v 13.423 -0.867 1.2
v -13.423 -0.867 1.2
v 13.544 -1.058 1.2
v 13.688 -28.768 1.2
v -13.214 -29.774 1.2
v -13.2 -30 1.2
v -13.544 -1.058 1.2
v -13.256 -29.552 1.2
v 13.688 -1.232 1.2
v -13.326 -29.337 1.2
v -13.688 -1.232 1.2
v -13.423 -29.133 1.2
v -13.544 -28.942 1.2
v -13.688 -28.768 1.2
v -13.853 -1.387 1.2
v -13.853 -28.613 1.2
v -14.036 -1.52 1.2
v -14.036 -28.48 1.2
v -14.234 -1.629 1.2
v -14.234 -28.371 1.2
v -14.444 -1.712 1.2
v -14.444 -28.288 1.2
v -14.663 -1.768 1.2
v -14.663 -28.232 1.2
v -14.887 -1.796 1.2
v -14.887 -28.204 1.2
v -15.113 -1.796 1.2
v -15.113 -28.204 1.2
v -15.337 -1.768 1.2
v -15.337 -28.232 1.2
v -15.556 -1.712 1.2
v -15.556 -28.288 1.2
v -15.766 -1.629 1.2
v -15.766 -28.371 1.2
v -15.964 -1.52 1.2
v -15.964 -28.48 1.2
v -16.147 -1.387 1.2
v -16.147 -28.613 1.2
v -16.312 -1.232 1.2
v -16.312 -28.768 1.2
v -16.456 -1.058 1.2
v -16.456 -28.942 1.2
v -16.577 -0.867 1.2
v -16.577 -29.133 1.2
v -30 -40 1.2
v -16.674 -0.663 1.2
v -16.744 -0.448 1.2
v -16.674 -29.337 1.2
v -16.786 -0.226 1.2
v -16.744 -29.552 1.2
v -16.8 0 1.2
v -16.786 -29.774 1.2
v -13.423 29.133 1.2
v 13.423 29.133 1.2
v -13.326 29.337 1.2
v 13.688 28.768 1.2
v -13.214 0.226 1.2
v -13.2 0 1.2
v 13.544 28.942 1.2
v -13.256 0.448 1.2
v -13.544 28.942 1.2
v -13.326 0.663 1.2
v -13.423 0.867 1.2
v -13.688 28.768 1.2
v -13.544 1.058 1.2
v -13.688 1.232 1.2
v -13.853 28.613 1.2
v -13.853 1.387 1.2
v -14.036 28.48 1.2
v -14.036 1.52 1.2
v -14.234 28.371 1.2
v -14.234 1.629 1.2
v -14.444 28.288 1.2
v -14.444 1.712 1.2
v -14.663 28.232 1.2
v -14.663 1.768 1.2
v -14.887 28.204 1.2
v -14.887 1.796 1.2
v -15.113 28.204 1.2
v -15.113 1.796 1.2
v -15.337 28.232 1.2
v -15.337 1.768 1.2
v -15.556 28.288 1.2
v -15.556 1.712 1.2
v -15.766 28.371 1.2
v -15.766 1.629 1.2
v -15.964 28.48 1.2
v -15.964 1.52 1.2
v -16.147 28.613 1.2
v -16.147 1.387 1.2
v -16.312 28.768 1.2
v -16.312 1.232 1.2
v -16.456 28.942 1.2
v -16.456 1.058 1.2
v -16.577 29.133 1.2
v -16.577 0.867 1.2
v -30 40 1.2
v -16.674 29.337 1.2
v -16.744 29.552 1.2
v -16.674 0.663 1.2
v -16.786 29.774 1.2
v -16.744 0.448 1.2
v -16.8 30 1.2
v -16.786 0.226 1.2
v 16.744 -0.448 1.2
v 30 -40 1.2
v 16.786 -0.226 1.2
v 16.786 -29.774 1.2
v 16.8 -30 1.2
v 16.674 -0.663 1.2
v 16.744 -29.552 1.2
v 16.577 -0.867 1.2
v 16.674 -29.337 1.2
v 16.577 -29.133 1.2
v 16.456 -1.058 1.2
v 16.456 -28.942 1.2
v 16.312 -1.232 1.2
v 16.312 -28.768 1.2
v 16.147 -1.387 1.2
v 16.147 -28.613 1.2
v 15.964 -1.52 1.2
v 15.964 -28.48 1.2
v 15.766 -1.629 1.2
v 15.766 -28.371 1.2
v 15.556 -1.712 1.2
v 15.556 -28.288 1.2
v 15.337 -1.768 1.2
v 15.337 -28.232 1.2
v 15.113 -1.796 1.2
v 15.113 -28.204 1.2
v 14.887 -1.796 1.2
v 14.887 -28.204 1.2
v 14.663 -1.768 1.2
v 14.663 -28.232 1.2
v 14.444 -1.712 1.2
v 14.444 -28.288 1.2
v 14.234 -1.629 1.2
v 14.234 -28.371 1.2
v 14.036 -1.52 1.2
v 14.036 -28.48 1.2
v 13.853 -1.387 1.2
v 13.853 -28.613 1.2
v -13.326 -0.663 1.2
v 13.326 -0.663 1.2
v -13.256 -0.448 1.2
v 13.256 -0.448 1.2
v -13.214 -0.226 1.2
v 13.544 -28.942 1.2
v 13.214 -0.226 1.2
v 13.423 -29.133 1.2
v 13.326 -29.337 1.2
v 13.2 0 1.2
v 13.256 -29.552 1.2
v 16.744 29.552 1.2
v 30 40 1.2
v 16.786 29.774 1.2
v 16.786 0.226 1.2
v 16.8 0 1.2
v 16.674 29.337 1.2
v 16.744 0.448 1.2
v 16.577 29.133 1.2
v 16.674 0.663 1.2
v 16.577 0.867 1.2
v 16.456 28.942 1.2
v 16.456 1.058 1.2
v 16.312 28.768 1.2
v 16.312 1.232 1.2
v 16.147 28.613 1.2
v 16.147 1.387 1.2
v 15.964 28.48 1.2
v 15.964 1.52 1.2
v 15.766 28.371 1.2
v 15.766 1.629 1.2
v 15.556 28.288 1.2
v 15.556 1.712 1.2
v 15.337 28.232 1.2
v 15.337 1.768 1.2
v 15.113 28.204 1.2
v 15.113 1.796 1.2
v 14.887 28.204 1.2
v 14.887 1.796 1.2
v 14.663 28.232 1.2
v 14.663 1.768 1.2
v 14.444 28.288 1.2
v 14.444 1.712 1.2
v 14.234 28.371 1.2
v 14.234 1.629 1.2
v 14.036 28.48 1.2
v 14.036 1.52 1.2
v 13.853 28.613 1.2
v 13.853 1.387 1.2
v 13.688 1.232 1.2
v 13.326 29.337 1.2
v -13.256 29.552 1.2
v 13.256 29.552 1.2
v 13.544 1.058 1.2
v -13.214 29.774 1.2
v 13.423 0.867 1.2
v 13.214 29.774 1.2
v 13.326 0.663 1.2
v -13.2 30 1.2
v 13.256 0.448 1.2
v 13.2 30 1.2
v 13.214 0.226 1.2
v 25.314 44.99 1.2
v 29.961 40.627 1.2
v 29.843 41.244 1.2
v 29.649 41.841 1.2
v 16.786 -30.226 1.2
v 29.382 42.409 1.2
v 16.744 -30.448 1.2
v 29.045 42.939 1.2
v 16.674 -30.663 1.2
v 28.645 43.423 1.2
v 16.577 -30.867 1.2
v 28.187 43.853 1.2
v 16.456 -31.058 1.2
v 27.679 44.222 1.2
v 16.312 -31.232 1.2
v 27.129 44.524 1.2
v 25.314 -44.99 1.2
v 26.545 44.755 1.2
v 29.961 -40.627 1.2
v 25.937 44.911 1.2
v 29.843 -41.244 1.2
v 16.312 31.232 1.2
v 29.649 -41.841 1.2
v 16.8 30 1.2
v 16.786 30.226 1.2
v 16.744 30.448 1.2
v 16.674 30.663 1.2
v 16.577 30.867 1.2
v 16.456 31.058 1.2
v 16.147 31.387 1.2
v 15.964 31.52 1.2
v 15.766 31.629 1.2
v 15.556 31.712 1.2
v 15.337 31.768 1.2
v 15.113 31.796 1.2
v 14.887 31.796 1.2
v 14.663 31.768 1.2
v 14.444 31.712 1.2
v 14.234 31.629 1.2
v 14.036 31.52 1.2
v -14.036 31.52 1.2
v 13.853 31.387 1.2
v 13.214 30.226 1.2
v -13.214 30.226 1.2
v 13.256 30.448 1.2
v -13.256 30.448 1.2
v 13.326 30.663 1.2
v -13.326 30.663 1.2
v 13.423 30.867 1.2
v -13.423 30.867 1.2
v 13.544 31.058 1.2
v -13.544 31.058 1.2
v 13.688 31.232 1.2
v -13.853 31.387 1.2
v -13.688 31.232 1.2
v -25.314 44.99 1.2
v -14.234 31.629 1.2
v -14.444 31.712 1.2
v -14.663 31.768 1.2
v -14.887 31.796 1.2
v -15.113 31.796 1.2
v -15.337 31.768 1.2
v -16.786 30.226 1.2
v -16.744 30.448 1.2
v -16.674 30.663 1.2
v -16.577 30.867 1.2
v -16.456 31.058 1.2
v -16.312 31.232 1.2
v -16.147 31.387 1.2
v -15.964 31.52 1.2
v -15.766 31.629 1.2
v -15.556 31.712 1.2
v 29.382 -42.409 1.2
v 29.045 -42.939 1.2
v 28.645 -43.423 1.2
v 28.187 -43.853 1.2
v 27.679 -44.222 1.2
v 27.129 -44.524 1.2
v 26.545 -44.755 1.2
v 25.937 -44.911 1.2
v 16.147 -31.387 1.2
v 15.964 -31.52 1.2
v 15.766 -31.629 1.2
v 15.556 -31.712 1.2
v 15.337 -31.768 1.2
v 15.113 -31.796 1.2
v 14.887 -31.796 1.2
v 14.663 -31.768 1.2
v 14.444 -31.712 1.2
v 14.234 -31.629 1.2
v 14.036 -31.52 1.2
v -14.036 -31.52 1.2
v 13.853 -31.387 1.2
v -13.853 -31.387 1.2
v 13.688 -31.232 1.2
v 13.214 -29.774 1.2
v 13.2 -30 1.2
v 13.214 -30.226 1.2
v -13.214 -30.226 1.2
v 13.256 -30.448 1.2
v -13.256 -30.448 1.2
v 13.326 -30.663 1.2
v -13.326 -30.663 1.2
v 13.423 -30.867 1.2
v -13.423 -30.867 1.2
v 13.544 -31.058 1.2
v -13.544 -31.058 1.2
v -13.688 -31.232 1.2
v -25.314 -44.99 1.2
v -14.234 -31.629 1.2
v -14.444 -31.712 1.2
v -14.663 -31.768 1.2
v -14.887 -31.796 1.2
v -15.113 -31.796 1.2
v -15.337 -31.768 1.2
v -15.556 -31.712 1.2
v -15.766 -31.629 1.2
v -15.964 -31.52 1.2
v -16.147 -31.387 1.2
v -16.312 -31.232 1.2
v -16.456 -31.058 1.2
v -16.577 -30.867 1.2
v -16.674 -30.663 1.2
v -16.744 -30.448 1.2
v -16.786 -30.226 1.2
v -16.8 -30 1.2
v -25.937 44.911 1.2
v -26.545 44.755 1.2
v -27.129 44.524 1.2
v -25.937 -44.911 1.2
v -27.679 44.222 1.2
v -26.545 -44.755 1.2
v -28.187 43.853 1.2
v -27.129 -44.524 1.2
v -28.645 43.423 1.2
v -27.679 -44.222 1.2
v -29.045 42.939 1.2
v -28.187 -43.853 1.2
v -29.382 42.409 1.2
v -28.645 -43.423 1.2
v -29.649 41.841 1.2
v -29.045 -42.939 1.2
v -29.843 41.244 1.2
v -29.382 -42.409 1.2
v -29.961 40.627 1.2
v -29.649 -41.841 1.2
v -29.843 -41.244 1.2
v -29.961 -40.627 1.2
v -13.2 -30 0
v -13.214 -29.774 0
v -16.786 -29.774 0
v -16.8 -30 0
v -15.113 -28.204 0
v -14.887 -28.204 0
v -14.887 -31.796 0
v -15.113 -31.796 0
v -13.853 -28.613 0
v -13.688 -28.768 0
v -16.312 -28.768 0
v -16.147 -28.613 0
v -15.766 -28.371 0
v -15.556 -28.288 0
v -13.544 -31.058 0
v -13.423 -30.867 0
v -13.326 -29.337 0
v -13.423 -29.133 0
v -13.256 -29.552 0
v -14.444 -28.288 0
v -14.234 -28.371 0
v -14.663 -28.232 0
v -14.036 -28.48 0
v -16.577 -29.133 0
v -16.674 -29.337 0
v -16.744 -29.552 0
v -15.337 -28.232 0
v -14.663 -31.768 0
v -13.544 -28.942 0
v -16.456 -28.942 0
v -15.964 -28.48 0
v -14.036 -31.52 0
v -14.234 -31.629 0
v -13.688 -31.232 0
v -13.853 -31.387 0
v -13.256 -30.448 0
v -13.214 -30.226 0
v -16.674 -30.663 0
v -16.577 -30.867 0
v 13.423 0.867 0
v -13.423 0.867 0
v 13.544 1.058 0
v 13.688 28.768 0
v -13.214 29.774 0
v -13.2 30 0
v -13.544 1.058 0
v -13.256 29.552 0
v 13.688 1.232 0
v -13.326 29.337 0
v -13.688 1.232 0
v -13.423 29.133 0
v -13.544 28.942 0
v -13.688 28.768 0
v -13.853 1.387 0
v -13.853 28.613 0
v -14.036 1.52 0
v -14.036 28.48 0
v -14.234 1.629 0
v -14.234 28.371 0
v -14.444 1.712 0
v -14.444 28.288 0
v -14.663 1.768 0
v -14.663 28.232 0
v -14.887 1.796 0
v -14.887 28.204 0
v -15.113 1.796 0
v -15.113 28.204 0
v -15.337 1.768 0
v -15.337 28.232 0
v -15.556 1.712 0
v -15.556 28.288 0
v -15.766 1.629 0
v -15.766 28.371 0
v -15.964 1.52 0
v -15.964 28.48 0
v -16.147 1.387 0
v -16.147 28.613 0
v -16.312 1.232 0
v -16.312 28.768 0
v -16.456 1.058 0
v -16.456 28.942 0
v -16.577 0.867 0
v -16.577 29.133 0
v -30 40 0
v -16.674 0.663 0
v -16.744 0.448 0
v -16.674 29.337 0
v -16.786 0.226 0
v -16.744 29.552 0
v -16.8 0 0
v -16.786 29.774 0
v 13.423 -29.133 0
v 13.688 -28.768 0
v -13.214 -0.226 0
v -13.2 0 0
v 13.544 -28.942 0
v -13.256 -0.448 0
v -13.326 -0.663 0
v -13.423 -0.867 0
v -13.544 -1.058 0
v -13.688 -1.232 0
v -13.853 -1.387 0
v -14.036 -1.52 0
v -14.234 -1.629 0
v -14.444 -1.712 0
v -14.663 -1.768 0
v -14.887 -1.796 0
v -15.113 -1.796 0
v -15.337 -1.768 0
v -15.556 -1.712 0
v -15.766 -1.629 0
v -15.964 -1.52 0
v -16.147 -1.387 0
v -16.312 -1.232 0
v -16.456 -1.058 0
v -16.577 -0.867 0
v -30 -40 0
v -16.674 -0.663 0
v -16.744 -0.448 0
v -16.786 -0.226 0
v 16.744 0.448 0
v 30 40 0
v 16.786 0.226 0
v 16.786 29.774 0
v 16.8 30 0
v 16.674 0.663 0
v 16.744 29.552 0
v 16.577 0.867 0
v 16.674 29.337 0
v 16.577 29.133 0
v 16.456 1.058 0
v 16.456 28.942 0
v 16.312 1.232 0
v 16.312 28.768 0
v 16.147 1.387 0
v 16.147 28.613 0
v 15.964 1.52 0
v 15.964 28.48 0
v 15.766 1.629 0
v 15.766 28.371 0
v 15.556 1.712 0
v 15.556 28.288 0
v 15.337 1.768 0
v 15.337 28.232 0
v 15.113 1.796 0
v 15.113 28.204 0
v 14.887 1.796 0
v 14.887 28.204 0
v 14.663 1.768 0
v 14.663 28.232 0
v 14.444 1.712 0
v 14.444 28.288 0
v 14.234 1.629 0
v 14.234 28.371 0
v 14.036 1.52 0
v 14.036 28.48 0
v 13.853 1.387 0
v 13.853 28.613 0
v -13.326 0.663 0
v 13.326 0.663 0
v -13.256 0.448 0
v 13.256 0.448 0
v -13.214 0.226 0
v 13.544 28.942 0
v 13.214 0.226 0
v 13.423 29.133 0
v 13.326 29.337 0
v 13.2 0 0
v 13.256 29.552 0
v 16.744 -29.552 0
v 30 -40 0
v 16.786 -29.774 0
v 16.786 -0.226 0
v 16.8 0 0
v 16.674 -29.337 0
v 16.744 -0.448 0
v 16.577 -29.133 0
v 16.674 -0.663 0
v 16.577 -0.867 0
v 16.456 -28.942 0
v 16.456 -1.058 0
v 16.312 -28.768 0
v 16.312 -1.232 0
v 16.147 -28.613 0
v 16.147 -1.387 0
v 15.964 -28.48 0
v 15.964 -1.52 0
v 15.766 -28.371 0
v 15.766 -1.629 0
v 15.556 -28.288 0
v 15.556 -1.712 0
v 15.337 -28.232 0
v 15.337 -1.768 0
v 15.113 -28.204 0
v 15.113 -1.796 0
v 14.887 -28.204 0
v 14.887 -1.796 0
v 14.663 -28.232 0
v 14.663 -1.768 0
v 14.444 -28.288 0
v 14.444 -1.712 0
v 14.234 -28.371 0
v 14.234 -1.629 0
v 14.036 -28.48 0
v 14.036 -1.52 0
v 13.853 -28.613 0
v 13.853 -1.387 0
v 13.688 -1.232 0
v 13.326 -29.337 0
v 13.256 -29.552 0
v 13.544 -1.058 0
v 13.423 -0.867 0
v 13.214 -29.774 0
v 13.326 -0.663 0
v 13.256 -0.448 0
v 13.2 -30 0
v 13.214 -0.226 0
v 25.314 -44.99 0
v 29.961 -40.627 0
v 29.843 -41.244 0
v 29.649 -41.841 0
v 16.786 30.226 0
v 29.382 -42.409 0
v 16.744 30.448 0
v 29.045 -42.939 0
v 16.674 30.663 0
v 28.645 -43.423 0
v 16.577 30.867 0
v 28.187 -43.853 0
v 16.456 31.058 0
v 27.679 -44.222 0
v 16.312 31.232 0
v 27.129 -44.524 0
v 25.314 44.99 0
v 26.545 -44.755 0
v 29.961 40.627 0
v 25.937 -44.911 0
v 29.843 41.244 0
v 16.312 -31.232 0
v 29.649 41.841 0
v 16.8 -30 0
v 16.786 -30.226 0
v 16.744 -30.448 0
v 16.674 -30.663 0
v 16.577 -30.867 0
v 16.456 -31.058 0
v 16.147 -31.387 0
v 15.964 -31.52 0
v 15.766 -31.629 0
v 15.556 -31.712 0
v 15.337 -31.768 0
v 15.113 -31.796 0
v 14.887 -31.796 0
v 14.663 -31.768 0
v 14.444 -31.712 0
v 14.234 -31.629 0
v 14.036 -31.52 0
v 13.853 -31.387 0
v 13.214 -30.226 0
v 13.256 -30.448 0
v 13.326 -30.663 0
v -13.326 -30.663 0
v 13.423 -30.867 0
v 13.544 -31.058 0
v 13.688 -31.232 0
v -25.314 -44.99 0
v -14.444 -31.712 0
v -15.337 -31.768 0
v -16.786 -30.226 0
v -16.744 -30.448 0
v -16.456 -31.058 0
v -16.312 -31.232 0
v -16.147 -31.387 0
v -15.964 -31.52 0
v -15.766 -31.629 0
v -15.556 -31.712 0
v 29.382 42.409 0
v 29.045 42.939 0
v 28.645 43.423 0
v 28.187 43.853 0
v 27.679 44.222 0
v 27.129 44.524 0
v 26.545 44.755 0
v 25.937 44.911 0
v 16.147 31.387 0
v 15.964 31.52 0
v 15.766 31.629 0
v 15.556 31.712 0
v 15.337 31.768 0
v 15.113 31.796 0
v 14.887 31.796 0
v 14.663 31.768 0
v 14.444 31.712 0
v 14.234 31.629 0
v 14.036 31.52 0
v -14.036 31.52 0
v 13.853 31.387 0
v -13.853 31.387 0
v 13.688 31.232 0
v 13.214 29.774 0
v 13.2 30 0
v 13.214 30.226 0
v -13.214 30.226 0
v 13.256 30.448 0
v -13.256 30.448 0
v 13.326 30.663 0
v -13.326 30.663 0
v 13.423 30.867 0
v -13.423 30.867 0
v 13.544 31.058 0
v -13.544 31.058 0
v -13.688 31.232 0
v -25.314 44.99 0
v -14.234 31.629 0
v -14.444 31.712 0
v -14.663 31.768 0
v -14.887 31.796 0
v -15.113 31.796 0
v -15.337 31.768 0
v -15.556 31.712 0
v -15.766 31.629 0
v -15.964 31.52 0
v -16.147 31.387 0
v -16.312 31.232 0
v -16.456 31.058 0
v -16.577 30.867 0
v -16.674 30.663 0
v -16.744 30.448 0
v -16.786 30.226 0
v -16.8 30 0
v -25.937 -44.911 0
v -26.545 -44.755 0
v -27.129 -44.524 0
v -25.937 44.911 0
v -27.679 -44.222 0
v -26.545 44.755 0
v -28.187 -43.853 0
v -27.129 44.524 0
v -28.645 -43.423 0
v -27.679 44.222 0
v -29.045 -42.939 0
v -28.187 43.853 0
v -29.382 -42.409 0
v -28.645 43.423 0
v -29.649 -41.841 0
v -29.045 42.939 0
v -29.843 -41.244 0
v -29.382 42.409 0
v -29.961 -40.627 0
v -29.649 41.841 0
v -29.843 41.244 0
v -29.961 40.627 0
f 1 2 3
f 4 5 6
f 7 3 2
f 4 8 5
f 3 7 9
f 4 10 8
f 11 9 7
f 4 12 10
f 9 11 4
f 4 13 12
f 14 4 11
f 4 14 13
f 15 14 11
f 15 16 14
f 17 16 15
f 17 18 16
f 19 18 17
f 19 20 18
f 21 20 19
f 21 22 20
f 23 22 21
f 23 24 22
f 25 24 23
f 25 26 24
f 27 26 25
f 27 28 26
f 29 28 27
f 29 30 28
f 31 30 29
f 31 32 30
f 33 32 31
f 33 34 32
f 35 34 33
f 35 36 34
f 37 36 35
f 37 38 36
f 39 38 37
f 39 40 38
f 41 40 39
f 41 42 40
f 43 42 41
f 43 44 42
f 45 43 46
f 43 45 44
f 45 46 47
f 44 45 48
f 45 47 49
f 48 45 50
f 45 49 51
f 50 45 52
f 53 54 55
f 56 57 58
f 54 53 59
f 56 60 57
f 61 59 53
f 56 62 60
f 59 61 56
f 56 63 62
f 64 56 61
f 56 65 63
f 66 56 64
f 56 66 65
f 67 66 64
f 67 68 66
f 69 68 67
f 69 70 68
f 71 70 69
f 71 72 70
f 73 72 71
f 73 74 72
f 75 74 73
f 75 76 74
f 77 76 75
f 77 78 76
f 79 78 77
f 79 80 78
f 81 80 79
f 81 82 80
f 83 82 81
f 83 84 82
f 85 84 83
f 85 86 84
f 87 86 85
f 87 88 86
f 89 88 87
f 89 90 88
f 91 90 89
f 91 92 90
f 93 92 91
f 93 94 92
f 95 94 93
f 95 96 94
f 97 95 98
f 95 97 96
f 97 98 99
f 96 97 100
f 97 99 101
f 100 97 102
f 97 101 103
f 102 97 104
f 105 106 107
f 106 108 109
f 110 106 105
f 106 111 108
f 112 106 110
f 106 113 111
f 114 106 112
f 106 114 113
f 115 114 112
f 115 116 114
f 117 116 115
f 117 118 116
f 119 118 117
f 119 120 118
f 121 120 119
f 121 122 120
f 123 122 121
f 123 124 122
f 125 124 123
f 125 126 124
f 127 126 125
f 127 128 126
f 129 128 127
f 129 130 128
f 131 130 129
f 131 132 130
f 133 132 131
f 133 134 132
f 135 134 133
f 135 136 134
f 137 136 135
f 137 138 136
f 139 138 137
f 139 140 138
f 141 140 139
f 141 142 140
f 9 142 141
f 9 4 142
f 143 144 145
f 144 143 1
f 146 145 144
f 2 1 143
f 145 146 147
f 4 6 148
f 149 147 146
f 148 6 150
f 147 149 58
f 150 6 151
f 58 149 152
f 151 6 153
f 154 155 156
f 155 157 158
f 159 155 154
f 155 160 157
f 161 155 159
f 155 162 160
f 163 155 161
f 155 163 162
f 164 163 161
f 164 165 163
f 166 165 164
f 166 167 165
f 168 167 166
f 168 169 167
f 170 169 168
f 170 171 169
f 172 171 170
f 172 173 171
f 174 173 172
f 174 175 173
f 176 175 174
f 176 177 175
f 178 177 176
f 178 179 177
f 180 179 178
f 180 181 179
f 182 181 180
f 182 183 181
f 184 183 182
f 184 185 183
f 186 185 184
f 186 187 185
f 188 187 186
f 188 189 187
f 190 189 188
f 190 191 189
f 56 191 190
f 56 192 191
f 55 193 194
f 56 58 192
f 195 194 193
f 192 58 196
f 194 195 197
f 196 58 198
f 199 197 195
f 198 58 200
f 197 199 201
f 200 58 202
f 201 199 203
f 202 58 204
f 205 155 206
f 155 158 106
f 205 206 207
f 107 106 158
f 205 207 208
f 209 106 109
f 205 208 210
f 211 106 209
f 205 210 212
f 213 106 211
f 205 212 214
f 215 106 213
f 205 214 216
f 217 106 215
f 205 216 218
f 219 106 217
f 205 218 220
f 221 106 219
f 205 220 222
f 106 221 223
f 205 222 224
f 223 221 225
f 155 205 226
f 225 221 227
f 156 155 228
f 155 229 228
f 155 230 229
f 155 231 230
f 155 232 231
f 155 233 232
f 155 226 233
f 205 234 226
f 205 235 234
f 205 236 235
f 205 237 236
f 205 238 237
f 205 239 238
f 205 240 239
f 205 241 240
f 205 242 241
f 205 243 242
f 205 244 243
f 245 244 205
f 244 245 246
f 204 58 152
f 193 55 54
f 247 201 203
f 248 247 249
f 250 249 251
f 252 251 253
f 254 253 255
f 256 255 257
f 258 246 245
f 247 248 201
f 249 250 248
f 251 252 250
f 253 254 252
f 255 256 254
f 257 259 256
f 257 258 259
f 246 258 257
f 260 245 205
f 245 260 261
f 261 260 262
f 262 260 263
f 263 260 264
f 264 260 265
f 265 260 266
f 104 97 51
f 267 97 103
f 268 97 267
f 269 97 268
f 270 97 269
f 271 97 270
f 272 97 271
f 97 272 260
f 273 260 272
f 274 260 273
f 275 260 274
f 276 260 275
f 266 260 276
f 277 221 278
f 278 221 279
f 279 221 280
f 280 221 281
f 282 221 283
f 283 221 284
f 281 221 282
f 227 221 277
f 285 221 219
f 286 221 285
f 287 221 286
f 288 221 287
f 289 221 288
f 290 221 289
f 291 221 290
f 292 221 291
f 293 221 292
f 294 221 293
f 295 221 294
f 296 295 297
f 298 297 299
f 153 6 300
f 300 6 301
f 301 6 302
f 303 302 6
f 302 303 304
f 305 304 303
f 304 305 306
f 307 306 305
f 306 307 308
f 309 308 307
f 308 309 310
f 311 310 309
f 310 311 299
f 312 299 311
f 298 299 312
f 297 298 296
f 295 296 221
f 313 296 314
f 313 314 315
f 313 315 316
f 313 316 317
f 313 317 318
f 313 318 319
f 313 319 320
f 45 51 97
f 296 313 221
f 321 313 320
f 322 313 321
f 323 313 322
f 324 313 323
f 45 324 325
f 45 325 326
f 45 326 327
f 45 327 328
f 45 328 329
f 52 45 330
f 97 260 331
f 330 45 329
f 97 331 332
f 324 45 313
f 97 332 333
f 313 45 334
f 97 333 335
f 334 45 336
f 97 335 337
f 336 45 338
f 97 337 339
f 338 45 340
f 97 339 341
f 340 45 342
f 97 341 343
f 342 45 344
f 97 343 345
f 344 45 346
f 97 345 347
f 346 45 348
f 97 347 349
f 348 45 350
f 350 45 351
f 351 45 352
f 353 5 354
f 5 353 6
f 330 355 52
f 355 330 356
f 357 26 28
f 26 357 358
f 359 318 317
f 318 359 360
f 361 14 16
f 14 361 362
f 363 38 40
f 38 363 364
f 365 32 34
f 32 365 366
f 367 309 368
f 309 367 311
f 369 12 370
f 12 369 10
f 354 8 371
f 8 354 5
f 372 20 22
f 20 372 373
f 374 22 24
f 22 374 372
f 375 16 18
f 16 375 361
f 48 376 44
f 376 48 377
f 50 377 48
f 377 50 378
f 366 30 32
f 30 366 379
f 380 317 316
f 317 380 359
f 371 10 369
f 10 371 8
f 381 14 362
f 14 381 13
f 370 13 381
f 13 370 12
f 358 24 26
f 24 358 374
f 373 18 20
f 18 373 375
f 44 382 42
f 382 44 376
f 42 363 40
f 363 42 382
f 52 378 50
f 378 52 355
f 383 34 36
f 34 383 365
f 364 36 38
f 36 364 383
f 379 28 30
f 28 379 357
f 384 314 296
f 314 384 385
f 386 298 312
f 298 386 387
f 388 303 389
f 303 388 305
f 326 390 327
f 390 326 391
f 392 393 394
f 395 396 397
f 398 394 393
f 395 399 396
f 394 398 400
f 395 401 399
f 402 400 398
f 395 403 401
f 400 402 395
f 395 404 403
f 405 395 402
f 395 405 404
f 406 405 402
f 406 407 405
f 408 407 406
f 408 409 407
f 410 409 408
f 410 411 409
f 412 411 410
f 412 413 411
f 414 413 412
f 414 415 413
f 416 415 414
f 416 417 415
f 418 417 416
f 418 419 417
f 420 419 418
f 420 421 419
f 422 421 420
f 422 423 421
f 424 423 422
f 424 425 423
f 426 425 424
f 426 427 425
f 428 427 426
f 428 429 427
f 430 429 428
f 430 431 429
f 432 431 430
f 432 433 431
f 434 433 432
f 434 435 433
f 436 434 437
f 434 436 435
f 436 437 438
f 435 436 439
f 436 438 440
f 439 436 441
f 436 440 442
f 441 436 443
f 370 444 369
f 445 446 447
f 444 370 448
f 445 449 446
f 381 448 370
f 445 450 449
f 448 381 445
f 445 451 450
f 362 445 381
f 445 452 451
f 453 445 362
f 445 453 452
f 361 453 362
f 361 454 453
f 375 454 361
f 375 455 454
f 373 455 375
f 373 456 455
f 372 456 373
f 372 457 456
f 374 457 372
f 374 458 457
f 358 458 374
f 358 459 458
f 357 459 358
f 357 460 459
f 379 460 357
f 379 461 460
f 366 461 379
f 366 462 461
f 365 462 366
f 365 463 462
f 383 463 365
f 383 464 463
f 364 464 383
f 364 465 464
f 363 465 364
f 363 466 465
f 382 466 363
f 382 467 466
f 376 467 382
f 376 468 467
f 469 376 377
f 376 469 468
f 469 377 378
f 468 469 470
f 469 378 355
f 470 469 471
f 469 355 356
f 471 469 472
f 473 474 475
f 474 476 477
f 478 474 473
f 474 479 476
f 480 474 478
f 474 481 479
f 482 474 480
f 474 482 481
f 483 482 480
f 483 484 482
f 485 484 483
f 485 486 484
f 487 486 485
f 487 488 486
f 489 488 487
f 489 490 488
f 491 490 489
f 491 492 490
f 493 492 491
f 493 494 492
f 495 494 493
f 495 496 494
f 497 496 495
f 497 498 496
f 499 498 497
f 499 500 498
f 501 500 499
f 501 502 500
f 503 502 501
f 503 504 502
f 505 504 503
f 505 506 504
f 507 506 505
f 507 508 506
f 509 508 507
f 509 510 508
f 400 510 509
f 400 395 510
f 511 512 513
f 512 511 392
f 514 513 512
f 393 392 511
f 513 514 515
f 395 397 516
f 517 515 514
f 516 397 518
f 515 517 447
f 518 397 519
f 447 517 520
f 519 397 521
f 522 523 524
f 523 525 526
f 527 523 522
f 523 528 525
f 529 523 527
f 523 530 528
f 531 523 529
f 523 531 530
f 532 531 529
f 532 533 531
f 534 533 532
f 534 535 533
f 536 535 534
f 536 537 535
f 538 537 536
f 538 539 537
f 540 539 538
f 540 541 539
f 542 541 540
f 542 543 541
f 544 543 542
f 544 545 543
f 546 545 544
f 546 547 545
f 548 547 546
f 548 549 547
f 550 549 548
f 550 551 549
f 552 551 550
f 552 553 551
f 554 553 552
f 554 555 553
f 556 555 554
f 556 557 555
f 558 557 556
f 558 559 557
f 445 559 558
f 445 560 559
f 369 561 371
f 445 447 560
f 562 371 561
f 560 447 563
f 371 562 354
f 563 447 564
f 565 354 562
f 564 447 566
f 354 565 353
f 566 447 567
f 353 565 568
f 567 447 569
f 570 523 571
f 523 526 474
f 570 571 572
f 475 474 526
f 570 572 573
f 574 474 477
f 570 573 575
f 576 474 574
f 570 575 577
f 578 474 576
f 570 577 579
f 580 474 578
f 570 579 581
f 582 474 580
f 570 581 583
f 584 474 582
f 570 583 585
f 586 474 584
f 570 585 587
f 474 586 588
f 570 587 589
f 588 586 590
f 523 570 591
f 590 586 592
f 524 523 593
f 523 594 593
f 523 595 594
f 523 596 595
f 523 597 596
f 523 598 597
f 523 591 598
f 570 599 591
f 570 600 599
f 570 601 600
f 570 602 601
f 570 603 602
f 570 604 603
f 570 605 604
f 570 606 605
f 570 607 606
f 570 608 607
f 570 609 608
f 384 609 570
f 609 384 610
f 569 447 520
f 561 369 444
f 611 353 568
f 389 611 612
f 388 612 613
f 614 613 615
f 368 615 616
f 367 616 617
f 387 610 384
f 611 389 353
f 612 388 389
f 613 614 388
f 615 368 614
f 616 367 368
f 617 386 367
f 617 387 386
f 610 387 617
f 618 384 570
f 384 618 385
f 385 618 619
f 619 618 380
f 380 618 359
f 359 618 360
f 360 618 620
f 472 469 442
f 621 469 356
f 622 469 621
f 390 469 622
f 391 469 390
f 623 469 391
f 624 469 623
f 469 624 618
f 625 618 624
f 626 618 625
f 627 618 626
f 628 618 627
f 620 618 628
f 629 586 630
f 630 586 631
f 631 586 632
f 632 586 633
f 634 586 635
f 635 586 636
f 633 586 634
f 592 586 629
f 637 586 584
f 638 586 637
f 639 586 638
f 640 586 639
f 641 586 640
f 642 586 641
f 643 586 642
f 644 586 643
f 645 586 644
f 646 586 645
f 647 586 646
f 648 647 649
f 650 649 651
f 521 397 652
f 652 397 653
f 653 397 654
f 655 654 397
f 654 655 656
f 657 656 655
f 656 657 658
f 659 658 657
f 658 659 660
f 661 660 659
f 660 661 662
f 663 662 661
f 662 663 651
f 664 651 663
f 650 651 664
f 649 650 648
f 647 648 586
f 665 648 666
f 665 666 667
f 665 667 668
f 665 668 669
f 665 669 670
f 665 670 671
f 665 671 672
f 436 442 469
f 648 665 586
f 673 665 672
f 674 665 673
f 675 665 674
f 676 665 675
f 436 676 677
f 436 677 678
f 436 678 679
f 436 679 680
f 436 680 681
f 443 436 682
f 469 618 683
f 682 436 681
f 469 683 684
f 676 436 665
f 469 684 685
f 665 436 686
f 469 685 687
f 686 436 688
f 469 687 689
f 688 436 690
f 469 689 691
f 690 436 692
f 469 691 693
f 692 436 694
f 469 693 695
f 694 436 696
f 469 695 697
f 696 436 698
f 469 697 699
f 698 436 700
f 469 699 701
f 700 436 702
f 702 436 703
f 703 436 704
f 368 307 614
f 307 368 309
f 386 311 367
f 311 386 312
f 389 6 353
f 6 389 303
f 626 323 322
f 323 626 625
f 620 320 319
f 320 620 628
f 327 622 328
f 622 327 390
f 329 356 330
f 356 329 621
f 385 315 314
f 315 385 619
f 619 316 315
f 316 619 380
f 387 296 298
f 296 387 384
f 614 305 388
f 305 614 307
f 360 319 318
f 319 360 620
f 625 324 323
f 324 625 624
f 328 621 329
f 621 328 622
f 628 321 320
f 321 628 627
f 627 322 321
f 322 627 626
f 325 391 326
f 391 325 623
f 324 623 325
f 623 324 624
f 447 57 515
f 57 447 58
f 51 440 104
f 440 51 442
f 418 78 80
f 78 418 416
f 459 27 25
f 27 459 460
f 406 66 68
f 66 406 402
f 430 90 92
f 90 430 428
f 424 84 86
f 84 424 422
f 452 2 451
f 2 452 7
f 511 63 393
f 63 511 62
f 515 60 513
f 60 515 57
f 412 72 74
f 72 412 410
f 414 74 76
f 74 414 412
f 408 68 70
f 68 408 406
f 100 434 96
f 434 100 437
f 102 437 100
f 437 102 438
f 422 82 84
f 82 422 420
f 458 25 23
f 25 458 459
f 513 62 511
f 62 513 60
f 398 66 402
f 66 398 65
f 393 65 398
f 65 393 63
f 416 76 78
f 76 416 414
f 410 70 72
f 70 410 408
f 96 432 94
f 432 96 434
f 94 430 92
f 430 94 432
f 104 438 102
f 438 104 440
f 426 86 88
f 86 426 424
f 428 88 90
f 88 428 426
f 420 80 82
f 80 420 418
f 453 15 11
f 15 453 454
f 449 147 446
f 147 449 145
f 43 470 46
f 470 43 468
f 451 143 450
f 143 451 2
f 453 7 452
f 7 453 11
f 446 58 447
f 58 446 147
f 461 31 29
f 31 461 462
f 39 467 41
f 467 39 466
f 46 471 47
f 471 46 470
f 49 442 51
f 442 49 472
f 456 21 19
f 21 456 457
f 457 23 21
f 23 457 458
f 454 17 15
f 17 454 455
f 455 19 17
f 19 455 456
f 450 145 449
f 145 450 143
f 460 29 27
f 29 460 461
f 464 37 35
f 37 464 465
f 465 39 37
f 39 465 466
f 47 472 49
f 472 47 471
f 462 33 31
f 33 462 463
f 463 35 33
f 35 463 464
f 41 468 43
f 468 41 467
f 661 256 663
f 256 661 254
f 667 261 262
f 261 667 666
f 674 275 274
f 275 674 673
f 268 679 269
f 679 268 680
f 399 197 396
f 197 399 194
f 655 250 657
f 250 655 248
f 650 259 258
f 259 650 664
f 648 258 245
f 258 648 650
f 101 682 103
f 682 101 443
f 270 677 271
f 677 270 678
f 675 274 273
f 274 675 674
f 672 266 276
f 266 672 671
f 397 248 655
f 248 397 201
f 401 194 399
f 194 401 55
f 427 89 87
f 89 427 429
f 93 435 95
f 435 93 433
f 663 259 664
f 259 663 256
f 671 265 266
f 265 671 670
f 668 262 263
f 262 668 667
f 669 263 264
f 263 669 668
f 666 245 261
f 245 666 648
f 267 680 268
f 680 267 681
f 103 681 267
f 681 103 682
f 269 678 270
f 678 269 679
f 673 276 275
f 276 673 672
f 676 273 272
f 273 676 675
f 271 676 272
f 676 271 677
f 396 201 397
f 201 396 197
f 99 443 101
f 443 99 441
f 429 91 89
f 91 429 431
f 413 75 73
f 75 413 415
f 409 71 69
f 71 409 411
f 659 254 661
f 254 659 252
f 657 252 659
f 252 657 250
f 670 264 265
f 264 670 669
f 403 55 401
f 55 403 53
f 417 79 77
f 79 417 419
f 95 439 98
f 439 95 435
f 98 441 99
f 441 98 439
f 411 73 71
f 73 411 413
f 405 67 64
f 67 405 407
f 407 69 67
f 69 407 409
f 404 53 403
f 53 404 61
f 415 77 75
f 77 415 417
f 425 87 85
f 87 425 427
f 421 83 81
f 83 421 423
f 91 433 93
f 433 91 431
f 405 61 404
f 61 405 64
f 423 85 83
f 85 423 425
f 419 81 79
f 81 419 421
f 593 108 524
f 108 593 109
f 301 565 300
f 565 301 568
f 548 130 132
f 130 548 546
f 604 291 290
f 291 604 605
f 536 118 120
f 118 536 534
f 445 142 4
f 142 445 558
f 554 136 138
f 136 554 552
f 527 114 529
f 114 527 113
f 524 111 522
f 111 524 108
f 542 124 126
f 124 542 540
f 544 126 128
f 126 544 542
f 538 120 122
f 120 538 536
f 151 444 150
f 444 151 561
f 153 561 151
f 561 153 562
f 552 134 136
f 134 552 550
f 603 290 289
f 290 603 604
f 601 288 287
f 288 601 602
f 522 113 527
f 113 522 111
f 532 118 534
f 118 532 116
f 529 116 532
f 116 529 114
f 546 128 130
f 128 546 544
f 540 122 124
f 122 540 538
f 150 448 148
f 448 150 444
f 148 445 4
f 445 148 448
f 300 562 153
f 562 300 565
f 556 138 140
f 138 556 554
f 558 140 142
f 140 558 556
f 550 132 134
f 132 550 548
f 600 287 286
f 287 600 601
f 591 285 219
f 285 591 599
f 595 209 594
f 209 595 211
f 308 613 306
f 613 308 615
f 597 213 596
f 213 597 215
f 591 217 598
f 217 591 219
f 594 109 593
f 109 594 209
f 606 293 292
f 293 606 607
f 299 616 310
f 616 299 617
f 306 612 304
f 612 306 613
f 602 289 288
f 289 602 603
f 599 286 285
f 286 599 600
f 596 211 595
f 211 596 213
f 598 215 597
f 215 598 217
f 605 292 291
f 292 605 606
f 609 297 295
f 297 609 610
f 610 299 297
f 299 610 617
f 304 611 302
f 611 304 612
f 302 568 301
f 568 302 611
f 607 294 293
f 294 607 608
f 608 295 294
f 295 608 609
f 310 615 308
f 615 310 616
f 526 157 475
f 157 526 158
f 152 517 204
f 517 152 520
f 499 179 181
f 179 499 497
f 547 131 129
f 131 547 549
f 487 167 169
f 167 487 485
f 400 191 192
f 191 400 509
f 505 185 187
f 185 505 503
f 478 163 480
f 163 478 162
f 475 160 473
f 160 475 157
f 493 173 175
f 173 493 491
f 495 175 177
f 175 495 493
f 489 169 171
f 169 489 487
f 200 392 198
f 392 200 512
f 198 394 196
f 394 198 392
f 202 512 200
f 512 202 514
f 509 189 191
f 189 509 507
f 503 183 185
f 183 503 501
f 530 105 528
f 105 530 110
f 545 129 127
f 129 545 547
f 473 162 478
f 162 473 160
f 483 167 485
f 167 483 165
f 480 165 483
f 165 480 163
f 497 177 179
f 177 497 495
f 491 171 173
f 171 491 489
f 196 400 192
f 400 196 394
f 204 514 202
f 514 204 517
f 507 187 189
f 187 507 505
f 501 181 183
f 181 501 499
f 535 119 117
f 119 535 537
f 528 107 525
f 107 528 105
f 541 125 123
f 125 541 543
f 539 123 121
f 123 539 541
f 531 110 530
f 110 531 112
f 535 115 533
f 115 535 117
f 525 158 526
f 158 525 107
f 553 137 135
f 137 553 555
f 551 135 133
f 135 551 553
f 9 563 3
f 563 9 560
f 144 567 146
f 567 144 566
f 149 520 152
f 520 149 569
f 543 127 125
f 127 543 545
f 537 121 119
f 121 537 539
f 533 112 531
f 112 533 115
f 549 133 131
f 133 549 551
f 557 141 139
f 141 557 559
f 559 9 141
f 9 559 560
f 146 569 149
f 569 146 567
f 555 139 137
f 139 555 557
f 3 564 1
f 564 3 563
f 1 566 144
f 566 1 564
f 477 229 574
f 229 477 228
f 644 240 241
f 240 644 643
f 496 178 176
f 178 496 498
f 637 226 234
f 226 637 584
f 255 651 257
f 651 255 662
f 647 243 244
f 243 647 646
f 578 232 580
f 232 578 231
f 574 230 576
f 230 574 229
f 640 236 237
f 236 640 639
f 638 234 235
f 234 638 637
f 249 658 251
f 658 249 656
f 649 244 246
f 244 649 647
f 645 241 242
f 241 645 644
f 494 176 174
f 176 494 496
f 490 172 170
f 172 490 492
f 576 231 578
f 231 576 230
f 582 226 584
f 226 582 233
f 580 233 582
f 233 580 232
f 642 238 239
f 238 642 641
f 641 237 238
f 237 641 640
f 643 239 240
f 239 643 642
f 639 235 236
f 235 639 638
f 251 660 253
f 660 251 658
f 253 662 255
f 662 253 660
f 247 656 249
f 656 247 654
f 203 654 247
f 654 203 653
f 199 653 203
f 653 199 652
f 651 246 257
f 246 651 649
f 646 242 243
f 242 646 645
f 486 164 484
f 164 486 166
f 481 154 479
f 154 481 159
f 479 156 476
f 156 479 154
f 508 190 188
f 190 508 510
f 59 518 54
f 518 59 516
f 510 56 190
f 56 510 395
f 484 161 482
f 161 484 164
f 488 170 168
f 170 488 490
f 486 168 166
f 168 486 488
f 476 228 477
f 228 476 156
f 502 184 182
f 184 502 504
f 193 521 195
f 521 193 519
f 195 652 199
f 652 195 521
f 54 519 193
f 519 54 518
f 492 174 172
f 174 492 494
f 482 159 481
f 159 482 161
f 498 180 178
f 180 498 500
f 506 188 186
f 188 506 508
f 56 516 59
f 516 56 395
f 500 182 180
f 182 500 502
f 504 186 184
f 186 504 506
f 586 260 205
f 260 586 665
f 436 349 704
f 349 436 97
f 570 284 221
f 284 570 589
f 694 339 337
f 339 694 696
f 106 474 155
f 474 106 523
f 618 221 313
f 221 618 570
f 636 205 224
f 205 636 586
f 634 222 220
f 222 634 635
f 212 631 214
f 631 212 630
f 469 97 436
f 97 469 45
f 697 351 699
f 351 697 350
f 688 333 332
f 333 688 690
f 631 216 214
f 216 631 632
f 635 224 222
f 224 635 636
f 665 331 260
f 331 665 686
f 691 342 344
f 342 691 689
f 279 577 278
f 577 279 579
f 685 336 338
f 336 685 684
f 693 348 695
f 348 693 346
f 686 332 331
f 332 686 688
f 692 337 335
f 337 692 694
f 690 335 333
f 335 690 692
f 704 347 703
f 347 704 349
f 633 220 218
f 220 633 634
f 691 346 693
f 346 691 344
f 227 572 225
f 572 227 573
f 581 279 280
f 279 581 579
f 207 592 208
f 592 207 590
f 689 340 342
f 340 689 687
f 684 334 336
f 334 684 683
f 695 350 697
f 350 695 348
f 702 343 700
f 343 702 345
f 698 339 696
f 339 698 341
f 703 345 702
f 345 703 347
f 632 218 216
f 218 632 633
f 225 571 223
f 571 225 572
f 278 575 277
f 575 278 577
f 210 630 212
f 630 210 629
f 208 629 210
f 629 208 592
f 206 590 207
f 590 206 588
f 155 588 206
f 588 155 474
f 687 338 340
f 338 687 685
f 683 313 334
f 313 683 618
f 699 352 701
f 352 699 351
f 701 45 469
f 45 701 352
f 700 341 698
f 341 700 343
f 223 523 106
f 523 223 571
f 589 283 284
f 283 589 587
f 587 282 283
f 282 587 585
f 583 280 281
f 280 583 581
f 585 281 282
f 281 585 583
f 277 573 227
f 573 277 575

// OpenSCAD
$fn = 50;


difference() {
	union() {
		hull() {
			translate(v = [-25.0000000000, 40.0000000000, 0]) {
				cylinder(h = 15, r = 5);
			}
			translate(v = [25.0000000000, 40.0000000000, 0]) {
				cylinder(h = 15, r = 5);
			}
			translate(v = [-25.0000000000, -40.0000000000, 0]) {
				cylinder(h = 15, r = 5);
			}
			translate(v = [25.0000000000, -40.0000000000, 0]) {
				cylinder(h = 15, r = 5);
			}
		}
	}
	union() {
		translate(v = [0, 0, 1.2000000000]) {
			hull() {
				translate(v = [-25.0000000000, 40.0000000000, 0]) {
					cylinder(h = 13.8000000000, r = 3.8000000000);
				}
				translate(v = [25.0000000000, 40.0000000000, 0]) {
					cylinder(h = 13.8000000000, r = 3.8000000000);
				}
				translate(v = [-25.0000000000, -40.0000000000, 0]) {
					cylinder(h = 13.8000000000, r = 3.8000000000);
				}
				translate(v = [25.0000000000, -40.0000000000, 0]) {
					cylinder(h = 13.8000000000, r = 3.8000000000);
				}
			}
		}
		#translate(v = [-15.0000000000, -30.0000000000, 0]) {
			cylinder(h = 1.2000000000, r = 1.8000000000);
		}
		#translate(v = [-15.0000000000, 0.0000000000, 0]) {
			cylinder(h = 1.2000000000, r = 1.8000000000);
		}
		#translate(v = [-15.0000000000, 30.0000000000, 0]) {
			cylinder(h = 1.2000000000, r = 1.8000000000);
		}
		#translate(v = [15.0000000000, -30.0000000000, 0]) {
			cylinder(h = 1.2000000000, r = 1.8000000000);
		}
		#translate(v = [15.0000000000, 0.0000000000, 0]) {
			cylinder(h = 1.2000000000, r = 1.8000000000);
		}
		#translate(v = [15.0000000000, 30.0000000000, 0]) {
			cylinder(h = 1.2000000000, r = 1.8000000000);
		}
		translate(v = [-250.0000000000, -250.0000000000, 1.2000000000]) {
			cube(size = [500, 500, 500]);
		}
		translate(v = [-250.0000000000, -250.0000000000, 1.2000000000]) {
			cube(size = [500, 500, 500]);
		}
		translate(v = [-250.0000000000, -250.0000000000, 1.2000000000]) {
			cube(size = [500, 500, 500]);
		}
	}
}
